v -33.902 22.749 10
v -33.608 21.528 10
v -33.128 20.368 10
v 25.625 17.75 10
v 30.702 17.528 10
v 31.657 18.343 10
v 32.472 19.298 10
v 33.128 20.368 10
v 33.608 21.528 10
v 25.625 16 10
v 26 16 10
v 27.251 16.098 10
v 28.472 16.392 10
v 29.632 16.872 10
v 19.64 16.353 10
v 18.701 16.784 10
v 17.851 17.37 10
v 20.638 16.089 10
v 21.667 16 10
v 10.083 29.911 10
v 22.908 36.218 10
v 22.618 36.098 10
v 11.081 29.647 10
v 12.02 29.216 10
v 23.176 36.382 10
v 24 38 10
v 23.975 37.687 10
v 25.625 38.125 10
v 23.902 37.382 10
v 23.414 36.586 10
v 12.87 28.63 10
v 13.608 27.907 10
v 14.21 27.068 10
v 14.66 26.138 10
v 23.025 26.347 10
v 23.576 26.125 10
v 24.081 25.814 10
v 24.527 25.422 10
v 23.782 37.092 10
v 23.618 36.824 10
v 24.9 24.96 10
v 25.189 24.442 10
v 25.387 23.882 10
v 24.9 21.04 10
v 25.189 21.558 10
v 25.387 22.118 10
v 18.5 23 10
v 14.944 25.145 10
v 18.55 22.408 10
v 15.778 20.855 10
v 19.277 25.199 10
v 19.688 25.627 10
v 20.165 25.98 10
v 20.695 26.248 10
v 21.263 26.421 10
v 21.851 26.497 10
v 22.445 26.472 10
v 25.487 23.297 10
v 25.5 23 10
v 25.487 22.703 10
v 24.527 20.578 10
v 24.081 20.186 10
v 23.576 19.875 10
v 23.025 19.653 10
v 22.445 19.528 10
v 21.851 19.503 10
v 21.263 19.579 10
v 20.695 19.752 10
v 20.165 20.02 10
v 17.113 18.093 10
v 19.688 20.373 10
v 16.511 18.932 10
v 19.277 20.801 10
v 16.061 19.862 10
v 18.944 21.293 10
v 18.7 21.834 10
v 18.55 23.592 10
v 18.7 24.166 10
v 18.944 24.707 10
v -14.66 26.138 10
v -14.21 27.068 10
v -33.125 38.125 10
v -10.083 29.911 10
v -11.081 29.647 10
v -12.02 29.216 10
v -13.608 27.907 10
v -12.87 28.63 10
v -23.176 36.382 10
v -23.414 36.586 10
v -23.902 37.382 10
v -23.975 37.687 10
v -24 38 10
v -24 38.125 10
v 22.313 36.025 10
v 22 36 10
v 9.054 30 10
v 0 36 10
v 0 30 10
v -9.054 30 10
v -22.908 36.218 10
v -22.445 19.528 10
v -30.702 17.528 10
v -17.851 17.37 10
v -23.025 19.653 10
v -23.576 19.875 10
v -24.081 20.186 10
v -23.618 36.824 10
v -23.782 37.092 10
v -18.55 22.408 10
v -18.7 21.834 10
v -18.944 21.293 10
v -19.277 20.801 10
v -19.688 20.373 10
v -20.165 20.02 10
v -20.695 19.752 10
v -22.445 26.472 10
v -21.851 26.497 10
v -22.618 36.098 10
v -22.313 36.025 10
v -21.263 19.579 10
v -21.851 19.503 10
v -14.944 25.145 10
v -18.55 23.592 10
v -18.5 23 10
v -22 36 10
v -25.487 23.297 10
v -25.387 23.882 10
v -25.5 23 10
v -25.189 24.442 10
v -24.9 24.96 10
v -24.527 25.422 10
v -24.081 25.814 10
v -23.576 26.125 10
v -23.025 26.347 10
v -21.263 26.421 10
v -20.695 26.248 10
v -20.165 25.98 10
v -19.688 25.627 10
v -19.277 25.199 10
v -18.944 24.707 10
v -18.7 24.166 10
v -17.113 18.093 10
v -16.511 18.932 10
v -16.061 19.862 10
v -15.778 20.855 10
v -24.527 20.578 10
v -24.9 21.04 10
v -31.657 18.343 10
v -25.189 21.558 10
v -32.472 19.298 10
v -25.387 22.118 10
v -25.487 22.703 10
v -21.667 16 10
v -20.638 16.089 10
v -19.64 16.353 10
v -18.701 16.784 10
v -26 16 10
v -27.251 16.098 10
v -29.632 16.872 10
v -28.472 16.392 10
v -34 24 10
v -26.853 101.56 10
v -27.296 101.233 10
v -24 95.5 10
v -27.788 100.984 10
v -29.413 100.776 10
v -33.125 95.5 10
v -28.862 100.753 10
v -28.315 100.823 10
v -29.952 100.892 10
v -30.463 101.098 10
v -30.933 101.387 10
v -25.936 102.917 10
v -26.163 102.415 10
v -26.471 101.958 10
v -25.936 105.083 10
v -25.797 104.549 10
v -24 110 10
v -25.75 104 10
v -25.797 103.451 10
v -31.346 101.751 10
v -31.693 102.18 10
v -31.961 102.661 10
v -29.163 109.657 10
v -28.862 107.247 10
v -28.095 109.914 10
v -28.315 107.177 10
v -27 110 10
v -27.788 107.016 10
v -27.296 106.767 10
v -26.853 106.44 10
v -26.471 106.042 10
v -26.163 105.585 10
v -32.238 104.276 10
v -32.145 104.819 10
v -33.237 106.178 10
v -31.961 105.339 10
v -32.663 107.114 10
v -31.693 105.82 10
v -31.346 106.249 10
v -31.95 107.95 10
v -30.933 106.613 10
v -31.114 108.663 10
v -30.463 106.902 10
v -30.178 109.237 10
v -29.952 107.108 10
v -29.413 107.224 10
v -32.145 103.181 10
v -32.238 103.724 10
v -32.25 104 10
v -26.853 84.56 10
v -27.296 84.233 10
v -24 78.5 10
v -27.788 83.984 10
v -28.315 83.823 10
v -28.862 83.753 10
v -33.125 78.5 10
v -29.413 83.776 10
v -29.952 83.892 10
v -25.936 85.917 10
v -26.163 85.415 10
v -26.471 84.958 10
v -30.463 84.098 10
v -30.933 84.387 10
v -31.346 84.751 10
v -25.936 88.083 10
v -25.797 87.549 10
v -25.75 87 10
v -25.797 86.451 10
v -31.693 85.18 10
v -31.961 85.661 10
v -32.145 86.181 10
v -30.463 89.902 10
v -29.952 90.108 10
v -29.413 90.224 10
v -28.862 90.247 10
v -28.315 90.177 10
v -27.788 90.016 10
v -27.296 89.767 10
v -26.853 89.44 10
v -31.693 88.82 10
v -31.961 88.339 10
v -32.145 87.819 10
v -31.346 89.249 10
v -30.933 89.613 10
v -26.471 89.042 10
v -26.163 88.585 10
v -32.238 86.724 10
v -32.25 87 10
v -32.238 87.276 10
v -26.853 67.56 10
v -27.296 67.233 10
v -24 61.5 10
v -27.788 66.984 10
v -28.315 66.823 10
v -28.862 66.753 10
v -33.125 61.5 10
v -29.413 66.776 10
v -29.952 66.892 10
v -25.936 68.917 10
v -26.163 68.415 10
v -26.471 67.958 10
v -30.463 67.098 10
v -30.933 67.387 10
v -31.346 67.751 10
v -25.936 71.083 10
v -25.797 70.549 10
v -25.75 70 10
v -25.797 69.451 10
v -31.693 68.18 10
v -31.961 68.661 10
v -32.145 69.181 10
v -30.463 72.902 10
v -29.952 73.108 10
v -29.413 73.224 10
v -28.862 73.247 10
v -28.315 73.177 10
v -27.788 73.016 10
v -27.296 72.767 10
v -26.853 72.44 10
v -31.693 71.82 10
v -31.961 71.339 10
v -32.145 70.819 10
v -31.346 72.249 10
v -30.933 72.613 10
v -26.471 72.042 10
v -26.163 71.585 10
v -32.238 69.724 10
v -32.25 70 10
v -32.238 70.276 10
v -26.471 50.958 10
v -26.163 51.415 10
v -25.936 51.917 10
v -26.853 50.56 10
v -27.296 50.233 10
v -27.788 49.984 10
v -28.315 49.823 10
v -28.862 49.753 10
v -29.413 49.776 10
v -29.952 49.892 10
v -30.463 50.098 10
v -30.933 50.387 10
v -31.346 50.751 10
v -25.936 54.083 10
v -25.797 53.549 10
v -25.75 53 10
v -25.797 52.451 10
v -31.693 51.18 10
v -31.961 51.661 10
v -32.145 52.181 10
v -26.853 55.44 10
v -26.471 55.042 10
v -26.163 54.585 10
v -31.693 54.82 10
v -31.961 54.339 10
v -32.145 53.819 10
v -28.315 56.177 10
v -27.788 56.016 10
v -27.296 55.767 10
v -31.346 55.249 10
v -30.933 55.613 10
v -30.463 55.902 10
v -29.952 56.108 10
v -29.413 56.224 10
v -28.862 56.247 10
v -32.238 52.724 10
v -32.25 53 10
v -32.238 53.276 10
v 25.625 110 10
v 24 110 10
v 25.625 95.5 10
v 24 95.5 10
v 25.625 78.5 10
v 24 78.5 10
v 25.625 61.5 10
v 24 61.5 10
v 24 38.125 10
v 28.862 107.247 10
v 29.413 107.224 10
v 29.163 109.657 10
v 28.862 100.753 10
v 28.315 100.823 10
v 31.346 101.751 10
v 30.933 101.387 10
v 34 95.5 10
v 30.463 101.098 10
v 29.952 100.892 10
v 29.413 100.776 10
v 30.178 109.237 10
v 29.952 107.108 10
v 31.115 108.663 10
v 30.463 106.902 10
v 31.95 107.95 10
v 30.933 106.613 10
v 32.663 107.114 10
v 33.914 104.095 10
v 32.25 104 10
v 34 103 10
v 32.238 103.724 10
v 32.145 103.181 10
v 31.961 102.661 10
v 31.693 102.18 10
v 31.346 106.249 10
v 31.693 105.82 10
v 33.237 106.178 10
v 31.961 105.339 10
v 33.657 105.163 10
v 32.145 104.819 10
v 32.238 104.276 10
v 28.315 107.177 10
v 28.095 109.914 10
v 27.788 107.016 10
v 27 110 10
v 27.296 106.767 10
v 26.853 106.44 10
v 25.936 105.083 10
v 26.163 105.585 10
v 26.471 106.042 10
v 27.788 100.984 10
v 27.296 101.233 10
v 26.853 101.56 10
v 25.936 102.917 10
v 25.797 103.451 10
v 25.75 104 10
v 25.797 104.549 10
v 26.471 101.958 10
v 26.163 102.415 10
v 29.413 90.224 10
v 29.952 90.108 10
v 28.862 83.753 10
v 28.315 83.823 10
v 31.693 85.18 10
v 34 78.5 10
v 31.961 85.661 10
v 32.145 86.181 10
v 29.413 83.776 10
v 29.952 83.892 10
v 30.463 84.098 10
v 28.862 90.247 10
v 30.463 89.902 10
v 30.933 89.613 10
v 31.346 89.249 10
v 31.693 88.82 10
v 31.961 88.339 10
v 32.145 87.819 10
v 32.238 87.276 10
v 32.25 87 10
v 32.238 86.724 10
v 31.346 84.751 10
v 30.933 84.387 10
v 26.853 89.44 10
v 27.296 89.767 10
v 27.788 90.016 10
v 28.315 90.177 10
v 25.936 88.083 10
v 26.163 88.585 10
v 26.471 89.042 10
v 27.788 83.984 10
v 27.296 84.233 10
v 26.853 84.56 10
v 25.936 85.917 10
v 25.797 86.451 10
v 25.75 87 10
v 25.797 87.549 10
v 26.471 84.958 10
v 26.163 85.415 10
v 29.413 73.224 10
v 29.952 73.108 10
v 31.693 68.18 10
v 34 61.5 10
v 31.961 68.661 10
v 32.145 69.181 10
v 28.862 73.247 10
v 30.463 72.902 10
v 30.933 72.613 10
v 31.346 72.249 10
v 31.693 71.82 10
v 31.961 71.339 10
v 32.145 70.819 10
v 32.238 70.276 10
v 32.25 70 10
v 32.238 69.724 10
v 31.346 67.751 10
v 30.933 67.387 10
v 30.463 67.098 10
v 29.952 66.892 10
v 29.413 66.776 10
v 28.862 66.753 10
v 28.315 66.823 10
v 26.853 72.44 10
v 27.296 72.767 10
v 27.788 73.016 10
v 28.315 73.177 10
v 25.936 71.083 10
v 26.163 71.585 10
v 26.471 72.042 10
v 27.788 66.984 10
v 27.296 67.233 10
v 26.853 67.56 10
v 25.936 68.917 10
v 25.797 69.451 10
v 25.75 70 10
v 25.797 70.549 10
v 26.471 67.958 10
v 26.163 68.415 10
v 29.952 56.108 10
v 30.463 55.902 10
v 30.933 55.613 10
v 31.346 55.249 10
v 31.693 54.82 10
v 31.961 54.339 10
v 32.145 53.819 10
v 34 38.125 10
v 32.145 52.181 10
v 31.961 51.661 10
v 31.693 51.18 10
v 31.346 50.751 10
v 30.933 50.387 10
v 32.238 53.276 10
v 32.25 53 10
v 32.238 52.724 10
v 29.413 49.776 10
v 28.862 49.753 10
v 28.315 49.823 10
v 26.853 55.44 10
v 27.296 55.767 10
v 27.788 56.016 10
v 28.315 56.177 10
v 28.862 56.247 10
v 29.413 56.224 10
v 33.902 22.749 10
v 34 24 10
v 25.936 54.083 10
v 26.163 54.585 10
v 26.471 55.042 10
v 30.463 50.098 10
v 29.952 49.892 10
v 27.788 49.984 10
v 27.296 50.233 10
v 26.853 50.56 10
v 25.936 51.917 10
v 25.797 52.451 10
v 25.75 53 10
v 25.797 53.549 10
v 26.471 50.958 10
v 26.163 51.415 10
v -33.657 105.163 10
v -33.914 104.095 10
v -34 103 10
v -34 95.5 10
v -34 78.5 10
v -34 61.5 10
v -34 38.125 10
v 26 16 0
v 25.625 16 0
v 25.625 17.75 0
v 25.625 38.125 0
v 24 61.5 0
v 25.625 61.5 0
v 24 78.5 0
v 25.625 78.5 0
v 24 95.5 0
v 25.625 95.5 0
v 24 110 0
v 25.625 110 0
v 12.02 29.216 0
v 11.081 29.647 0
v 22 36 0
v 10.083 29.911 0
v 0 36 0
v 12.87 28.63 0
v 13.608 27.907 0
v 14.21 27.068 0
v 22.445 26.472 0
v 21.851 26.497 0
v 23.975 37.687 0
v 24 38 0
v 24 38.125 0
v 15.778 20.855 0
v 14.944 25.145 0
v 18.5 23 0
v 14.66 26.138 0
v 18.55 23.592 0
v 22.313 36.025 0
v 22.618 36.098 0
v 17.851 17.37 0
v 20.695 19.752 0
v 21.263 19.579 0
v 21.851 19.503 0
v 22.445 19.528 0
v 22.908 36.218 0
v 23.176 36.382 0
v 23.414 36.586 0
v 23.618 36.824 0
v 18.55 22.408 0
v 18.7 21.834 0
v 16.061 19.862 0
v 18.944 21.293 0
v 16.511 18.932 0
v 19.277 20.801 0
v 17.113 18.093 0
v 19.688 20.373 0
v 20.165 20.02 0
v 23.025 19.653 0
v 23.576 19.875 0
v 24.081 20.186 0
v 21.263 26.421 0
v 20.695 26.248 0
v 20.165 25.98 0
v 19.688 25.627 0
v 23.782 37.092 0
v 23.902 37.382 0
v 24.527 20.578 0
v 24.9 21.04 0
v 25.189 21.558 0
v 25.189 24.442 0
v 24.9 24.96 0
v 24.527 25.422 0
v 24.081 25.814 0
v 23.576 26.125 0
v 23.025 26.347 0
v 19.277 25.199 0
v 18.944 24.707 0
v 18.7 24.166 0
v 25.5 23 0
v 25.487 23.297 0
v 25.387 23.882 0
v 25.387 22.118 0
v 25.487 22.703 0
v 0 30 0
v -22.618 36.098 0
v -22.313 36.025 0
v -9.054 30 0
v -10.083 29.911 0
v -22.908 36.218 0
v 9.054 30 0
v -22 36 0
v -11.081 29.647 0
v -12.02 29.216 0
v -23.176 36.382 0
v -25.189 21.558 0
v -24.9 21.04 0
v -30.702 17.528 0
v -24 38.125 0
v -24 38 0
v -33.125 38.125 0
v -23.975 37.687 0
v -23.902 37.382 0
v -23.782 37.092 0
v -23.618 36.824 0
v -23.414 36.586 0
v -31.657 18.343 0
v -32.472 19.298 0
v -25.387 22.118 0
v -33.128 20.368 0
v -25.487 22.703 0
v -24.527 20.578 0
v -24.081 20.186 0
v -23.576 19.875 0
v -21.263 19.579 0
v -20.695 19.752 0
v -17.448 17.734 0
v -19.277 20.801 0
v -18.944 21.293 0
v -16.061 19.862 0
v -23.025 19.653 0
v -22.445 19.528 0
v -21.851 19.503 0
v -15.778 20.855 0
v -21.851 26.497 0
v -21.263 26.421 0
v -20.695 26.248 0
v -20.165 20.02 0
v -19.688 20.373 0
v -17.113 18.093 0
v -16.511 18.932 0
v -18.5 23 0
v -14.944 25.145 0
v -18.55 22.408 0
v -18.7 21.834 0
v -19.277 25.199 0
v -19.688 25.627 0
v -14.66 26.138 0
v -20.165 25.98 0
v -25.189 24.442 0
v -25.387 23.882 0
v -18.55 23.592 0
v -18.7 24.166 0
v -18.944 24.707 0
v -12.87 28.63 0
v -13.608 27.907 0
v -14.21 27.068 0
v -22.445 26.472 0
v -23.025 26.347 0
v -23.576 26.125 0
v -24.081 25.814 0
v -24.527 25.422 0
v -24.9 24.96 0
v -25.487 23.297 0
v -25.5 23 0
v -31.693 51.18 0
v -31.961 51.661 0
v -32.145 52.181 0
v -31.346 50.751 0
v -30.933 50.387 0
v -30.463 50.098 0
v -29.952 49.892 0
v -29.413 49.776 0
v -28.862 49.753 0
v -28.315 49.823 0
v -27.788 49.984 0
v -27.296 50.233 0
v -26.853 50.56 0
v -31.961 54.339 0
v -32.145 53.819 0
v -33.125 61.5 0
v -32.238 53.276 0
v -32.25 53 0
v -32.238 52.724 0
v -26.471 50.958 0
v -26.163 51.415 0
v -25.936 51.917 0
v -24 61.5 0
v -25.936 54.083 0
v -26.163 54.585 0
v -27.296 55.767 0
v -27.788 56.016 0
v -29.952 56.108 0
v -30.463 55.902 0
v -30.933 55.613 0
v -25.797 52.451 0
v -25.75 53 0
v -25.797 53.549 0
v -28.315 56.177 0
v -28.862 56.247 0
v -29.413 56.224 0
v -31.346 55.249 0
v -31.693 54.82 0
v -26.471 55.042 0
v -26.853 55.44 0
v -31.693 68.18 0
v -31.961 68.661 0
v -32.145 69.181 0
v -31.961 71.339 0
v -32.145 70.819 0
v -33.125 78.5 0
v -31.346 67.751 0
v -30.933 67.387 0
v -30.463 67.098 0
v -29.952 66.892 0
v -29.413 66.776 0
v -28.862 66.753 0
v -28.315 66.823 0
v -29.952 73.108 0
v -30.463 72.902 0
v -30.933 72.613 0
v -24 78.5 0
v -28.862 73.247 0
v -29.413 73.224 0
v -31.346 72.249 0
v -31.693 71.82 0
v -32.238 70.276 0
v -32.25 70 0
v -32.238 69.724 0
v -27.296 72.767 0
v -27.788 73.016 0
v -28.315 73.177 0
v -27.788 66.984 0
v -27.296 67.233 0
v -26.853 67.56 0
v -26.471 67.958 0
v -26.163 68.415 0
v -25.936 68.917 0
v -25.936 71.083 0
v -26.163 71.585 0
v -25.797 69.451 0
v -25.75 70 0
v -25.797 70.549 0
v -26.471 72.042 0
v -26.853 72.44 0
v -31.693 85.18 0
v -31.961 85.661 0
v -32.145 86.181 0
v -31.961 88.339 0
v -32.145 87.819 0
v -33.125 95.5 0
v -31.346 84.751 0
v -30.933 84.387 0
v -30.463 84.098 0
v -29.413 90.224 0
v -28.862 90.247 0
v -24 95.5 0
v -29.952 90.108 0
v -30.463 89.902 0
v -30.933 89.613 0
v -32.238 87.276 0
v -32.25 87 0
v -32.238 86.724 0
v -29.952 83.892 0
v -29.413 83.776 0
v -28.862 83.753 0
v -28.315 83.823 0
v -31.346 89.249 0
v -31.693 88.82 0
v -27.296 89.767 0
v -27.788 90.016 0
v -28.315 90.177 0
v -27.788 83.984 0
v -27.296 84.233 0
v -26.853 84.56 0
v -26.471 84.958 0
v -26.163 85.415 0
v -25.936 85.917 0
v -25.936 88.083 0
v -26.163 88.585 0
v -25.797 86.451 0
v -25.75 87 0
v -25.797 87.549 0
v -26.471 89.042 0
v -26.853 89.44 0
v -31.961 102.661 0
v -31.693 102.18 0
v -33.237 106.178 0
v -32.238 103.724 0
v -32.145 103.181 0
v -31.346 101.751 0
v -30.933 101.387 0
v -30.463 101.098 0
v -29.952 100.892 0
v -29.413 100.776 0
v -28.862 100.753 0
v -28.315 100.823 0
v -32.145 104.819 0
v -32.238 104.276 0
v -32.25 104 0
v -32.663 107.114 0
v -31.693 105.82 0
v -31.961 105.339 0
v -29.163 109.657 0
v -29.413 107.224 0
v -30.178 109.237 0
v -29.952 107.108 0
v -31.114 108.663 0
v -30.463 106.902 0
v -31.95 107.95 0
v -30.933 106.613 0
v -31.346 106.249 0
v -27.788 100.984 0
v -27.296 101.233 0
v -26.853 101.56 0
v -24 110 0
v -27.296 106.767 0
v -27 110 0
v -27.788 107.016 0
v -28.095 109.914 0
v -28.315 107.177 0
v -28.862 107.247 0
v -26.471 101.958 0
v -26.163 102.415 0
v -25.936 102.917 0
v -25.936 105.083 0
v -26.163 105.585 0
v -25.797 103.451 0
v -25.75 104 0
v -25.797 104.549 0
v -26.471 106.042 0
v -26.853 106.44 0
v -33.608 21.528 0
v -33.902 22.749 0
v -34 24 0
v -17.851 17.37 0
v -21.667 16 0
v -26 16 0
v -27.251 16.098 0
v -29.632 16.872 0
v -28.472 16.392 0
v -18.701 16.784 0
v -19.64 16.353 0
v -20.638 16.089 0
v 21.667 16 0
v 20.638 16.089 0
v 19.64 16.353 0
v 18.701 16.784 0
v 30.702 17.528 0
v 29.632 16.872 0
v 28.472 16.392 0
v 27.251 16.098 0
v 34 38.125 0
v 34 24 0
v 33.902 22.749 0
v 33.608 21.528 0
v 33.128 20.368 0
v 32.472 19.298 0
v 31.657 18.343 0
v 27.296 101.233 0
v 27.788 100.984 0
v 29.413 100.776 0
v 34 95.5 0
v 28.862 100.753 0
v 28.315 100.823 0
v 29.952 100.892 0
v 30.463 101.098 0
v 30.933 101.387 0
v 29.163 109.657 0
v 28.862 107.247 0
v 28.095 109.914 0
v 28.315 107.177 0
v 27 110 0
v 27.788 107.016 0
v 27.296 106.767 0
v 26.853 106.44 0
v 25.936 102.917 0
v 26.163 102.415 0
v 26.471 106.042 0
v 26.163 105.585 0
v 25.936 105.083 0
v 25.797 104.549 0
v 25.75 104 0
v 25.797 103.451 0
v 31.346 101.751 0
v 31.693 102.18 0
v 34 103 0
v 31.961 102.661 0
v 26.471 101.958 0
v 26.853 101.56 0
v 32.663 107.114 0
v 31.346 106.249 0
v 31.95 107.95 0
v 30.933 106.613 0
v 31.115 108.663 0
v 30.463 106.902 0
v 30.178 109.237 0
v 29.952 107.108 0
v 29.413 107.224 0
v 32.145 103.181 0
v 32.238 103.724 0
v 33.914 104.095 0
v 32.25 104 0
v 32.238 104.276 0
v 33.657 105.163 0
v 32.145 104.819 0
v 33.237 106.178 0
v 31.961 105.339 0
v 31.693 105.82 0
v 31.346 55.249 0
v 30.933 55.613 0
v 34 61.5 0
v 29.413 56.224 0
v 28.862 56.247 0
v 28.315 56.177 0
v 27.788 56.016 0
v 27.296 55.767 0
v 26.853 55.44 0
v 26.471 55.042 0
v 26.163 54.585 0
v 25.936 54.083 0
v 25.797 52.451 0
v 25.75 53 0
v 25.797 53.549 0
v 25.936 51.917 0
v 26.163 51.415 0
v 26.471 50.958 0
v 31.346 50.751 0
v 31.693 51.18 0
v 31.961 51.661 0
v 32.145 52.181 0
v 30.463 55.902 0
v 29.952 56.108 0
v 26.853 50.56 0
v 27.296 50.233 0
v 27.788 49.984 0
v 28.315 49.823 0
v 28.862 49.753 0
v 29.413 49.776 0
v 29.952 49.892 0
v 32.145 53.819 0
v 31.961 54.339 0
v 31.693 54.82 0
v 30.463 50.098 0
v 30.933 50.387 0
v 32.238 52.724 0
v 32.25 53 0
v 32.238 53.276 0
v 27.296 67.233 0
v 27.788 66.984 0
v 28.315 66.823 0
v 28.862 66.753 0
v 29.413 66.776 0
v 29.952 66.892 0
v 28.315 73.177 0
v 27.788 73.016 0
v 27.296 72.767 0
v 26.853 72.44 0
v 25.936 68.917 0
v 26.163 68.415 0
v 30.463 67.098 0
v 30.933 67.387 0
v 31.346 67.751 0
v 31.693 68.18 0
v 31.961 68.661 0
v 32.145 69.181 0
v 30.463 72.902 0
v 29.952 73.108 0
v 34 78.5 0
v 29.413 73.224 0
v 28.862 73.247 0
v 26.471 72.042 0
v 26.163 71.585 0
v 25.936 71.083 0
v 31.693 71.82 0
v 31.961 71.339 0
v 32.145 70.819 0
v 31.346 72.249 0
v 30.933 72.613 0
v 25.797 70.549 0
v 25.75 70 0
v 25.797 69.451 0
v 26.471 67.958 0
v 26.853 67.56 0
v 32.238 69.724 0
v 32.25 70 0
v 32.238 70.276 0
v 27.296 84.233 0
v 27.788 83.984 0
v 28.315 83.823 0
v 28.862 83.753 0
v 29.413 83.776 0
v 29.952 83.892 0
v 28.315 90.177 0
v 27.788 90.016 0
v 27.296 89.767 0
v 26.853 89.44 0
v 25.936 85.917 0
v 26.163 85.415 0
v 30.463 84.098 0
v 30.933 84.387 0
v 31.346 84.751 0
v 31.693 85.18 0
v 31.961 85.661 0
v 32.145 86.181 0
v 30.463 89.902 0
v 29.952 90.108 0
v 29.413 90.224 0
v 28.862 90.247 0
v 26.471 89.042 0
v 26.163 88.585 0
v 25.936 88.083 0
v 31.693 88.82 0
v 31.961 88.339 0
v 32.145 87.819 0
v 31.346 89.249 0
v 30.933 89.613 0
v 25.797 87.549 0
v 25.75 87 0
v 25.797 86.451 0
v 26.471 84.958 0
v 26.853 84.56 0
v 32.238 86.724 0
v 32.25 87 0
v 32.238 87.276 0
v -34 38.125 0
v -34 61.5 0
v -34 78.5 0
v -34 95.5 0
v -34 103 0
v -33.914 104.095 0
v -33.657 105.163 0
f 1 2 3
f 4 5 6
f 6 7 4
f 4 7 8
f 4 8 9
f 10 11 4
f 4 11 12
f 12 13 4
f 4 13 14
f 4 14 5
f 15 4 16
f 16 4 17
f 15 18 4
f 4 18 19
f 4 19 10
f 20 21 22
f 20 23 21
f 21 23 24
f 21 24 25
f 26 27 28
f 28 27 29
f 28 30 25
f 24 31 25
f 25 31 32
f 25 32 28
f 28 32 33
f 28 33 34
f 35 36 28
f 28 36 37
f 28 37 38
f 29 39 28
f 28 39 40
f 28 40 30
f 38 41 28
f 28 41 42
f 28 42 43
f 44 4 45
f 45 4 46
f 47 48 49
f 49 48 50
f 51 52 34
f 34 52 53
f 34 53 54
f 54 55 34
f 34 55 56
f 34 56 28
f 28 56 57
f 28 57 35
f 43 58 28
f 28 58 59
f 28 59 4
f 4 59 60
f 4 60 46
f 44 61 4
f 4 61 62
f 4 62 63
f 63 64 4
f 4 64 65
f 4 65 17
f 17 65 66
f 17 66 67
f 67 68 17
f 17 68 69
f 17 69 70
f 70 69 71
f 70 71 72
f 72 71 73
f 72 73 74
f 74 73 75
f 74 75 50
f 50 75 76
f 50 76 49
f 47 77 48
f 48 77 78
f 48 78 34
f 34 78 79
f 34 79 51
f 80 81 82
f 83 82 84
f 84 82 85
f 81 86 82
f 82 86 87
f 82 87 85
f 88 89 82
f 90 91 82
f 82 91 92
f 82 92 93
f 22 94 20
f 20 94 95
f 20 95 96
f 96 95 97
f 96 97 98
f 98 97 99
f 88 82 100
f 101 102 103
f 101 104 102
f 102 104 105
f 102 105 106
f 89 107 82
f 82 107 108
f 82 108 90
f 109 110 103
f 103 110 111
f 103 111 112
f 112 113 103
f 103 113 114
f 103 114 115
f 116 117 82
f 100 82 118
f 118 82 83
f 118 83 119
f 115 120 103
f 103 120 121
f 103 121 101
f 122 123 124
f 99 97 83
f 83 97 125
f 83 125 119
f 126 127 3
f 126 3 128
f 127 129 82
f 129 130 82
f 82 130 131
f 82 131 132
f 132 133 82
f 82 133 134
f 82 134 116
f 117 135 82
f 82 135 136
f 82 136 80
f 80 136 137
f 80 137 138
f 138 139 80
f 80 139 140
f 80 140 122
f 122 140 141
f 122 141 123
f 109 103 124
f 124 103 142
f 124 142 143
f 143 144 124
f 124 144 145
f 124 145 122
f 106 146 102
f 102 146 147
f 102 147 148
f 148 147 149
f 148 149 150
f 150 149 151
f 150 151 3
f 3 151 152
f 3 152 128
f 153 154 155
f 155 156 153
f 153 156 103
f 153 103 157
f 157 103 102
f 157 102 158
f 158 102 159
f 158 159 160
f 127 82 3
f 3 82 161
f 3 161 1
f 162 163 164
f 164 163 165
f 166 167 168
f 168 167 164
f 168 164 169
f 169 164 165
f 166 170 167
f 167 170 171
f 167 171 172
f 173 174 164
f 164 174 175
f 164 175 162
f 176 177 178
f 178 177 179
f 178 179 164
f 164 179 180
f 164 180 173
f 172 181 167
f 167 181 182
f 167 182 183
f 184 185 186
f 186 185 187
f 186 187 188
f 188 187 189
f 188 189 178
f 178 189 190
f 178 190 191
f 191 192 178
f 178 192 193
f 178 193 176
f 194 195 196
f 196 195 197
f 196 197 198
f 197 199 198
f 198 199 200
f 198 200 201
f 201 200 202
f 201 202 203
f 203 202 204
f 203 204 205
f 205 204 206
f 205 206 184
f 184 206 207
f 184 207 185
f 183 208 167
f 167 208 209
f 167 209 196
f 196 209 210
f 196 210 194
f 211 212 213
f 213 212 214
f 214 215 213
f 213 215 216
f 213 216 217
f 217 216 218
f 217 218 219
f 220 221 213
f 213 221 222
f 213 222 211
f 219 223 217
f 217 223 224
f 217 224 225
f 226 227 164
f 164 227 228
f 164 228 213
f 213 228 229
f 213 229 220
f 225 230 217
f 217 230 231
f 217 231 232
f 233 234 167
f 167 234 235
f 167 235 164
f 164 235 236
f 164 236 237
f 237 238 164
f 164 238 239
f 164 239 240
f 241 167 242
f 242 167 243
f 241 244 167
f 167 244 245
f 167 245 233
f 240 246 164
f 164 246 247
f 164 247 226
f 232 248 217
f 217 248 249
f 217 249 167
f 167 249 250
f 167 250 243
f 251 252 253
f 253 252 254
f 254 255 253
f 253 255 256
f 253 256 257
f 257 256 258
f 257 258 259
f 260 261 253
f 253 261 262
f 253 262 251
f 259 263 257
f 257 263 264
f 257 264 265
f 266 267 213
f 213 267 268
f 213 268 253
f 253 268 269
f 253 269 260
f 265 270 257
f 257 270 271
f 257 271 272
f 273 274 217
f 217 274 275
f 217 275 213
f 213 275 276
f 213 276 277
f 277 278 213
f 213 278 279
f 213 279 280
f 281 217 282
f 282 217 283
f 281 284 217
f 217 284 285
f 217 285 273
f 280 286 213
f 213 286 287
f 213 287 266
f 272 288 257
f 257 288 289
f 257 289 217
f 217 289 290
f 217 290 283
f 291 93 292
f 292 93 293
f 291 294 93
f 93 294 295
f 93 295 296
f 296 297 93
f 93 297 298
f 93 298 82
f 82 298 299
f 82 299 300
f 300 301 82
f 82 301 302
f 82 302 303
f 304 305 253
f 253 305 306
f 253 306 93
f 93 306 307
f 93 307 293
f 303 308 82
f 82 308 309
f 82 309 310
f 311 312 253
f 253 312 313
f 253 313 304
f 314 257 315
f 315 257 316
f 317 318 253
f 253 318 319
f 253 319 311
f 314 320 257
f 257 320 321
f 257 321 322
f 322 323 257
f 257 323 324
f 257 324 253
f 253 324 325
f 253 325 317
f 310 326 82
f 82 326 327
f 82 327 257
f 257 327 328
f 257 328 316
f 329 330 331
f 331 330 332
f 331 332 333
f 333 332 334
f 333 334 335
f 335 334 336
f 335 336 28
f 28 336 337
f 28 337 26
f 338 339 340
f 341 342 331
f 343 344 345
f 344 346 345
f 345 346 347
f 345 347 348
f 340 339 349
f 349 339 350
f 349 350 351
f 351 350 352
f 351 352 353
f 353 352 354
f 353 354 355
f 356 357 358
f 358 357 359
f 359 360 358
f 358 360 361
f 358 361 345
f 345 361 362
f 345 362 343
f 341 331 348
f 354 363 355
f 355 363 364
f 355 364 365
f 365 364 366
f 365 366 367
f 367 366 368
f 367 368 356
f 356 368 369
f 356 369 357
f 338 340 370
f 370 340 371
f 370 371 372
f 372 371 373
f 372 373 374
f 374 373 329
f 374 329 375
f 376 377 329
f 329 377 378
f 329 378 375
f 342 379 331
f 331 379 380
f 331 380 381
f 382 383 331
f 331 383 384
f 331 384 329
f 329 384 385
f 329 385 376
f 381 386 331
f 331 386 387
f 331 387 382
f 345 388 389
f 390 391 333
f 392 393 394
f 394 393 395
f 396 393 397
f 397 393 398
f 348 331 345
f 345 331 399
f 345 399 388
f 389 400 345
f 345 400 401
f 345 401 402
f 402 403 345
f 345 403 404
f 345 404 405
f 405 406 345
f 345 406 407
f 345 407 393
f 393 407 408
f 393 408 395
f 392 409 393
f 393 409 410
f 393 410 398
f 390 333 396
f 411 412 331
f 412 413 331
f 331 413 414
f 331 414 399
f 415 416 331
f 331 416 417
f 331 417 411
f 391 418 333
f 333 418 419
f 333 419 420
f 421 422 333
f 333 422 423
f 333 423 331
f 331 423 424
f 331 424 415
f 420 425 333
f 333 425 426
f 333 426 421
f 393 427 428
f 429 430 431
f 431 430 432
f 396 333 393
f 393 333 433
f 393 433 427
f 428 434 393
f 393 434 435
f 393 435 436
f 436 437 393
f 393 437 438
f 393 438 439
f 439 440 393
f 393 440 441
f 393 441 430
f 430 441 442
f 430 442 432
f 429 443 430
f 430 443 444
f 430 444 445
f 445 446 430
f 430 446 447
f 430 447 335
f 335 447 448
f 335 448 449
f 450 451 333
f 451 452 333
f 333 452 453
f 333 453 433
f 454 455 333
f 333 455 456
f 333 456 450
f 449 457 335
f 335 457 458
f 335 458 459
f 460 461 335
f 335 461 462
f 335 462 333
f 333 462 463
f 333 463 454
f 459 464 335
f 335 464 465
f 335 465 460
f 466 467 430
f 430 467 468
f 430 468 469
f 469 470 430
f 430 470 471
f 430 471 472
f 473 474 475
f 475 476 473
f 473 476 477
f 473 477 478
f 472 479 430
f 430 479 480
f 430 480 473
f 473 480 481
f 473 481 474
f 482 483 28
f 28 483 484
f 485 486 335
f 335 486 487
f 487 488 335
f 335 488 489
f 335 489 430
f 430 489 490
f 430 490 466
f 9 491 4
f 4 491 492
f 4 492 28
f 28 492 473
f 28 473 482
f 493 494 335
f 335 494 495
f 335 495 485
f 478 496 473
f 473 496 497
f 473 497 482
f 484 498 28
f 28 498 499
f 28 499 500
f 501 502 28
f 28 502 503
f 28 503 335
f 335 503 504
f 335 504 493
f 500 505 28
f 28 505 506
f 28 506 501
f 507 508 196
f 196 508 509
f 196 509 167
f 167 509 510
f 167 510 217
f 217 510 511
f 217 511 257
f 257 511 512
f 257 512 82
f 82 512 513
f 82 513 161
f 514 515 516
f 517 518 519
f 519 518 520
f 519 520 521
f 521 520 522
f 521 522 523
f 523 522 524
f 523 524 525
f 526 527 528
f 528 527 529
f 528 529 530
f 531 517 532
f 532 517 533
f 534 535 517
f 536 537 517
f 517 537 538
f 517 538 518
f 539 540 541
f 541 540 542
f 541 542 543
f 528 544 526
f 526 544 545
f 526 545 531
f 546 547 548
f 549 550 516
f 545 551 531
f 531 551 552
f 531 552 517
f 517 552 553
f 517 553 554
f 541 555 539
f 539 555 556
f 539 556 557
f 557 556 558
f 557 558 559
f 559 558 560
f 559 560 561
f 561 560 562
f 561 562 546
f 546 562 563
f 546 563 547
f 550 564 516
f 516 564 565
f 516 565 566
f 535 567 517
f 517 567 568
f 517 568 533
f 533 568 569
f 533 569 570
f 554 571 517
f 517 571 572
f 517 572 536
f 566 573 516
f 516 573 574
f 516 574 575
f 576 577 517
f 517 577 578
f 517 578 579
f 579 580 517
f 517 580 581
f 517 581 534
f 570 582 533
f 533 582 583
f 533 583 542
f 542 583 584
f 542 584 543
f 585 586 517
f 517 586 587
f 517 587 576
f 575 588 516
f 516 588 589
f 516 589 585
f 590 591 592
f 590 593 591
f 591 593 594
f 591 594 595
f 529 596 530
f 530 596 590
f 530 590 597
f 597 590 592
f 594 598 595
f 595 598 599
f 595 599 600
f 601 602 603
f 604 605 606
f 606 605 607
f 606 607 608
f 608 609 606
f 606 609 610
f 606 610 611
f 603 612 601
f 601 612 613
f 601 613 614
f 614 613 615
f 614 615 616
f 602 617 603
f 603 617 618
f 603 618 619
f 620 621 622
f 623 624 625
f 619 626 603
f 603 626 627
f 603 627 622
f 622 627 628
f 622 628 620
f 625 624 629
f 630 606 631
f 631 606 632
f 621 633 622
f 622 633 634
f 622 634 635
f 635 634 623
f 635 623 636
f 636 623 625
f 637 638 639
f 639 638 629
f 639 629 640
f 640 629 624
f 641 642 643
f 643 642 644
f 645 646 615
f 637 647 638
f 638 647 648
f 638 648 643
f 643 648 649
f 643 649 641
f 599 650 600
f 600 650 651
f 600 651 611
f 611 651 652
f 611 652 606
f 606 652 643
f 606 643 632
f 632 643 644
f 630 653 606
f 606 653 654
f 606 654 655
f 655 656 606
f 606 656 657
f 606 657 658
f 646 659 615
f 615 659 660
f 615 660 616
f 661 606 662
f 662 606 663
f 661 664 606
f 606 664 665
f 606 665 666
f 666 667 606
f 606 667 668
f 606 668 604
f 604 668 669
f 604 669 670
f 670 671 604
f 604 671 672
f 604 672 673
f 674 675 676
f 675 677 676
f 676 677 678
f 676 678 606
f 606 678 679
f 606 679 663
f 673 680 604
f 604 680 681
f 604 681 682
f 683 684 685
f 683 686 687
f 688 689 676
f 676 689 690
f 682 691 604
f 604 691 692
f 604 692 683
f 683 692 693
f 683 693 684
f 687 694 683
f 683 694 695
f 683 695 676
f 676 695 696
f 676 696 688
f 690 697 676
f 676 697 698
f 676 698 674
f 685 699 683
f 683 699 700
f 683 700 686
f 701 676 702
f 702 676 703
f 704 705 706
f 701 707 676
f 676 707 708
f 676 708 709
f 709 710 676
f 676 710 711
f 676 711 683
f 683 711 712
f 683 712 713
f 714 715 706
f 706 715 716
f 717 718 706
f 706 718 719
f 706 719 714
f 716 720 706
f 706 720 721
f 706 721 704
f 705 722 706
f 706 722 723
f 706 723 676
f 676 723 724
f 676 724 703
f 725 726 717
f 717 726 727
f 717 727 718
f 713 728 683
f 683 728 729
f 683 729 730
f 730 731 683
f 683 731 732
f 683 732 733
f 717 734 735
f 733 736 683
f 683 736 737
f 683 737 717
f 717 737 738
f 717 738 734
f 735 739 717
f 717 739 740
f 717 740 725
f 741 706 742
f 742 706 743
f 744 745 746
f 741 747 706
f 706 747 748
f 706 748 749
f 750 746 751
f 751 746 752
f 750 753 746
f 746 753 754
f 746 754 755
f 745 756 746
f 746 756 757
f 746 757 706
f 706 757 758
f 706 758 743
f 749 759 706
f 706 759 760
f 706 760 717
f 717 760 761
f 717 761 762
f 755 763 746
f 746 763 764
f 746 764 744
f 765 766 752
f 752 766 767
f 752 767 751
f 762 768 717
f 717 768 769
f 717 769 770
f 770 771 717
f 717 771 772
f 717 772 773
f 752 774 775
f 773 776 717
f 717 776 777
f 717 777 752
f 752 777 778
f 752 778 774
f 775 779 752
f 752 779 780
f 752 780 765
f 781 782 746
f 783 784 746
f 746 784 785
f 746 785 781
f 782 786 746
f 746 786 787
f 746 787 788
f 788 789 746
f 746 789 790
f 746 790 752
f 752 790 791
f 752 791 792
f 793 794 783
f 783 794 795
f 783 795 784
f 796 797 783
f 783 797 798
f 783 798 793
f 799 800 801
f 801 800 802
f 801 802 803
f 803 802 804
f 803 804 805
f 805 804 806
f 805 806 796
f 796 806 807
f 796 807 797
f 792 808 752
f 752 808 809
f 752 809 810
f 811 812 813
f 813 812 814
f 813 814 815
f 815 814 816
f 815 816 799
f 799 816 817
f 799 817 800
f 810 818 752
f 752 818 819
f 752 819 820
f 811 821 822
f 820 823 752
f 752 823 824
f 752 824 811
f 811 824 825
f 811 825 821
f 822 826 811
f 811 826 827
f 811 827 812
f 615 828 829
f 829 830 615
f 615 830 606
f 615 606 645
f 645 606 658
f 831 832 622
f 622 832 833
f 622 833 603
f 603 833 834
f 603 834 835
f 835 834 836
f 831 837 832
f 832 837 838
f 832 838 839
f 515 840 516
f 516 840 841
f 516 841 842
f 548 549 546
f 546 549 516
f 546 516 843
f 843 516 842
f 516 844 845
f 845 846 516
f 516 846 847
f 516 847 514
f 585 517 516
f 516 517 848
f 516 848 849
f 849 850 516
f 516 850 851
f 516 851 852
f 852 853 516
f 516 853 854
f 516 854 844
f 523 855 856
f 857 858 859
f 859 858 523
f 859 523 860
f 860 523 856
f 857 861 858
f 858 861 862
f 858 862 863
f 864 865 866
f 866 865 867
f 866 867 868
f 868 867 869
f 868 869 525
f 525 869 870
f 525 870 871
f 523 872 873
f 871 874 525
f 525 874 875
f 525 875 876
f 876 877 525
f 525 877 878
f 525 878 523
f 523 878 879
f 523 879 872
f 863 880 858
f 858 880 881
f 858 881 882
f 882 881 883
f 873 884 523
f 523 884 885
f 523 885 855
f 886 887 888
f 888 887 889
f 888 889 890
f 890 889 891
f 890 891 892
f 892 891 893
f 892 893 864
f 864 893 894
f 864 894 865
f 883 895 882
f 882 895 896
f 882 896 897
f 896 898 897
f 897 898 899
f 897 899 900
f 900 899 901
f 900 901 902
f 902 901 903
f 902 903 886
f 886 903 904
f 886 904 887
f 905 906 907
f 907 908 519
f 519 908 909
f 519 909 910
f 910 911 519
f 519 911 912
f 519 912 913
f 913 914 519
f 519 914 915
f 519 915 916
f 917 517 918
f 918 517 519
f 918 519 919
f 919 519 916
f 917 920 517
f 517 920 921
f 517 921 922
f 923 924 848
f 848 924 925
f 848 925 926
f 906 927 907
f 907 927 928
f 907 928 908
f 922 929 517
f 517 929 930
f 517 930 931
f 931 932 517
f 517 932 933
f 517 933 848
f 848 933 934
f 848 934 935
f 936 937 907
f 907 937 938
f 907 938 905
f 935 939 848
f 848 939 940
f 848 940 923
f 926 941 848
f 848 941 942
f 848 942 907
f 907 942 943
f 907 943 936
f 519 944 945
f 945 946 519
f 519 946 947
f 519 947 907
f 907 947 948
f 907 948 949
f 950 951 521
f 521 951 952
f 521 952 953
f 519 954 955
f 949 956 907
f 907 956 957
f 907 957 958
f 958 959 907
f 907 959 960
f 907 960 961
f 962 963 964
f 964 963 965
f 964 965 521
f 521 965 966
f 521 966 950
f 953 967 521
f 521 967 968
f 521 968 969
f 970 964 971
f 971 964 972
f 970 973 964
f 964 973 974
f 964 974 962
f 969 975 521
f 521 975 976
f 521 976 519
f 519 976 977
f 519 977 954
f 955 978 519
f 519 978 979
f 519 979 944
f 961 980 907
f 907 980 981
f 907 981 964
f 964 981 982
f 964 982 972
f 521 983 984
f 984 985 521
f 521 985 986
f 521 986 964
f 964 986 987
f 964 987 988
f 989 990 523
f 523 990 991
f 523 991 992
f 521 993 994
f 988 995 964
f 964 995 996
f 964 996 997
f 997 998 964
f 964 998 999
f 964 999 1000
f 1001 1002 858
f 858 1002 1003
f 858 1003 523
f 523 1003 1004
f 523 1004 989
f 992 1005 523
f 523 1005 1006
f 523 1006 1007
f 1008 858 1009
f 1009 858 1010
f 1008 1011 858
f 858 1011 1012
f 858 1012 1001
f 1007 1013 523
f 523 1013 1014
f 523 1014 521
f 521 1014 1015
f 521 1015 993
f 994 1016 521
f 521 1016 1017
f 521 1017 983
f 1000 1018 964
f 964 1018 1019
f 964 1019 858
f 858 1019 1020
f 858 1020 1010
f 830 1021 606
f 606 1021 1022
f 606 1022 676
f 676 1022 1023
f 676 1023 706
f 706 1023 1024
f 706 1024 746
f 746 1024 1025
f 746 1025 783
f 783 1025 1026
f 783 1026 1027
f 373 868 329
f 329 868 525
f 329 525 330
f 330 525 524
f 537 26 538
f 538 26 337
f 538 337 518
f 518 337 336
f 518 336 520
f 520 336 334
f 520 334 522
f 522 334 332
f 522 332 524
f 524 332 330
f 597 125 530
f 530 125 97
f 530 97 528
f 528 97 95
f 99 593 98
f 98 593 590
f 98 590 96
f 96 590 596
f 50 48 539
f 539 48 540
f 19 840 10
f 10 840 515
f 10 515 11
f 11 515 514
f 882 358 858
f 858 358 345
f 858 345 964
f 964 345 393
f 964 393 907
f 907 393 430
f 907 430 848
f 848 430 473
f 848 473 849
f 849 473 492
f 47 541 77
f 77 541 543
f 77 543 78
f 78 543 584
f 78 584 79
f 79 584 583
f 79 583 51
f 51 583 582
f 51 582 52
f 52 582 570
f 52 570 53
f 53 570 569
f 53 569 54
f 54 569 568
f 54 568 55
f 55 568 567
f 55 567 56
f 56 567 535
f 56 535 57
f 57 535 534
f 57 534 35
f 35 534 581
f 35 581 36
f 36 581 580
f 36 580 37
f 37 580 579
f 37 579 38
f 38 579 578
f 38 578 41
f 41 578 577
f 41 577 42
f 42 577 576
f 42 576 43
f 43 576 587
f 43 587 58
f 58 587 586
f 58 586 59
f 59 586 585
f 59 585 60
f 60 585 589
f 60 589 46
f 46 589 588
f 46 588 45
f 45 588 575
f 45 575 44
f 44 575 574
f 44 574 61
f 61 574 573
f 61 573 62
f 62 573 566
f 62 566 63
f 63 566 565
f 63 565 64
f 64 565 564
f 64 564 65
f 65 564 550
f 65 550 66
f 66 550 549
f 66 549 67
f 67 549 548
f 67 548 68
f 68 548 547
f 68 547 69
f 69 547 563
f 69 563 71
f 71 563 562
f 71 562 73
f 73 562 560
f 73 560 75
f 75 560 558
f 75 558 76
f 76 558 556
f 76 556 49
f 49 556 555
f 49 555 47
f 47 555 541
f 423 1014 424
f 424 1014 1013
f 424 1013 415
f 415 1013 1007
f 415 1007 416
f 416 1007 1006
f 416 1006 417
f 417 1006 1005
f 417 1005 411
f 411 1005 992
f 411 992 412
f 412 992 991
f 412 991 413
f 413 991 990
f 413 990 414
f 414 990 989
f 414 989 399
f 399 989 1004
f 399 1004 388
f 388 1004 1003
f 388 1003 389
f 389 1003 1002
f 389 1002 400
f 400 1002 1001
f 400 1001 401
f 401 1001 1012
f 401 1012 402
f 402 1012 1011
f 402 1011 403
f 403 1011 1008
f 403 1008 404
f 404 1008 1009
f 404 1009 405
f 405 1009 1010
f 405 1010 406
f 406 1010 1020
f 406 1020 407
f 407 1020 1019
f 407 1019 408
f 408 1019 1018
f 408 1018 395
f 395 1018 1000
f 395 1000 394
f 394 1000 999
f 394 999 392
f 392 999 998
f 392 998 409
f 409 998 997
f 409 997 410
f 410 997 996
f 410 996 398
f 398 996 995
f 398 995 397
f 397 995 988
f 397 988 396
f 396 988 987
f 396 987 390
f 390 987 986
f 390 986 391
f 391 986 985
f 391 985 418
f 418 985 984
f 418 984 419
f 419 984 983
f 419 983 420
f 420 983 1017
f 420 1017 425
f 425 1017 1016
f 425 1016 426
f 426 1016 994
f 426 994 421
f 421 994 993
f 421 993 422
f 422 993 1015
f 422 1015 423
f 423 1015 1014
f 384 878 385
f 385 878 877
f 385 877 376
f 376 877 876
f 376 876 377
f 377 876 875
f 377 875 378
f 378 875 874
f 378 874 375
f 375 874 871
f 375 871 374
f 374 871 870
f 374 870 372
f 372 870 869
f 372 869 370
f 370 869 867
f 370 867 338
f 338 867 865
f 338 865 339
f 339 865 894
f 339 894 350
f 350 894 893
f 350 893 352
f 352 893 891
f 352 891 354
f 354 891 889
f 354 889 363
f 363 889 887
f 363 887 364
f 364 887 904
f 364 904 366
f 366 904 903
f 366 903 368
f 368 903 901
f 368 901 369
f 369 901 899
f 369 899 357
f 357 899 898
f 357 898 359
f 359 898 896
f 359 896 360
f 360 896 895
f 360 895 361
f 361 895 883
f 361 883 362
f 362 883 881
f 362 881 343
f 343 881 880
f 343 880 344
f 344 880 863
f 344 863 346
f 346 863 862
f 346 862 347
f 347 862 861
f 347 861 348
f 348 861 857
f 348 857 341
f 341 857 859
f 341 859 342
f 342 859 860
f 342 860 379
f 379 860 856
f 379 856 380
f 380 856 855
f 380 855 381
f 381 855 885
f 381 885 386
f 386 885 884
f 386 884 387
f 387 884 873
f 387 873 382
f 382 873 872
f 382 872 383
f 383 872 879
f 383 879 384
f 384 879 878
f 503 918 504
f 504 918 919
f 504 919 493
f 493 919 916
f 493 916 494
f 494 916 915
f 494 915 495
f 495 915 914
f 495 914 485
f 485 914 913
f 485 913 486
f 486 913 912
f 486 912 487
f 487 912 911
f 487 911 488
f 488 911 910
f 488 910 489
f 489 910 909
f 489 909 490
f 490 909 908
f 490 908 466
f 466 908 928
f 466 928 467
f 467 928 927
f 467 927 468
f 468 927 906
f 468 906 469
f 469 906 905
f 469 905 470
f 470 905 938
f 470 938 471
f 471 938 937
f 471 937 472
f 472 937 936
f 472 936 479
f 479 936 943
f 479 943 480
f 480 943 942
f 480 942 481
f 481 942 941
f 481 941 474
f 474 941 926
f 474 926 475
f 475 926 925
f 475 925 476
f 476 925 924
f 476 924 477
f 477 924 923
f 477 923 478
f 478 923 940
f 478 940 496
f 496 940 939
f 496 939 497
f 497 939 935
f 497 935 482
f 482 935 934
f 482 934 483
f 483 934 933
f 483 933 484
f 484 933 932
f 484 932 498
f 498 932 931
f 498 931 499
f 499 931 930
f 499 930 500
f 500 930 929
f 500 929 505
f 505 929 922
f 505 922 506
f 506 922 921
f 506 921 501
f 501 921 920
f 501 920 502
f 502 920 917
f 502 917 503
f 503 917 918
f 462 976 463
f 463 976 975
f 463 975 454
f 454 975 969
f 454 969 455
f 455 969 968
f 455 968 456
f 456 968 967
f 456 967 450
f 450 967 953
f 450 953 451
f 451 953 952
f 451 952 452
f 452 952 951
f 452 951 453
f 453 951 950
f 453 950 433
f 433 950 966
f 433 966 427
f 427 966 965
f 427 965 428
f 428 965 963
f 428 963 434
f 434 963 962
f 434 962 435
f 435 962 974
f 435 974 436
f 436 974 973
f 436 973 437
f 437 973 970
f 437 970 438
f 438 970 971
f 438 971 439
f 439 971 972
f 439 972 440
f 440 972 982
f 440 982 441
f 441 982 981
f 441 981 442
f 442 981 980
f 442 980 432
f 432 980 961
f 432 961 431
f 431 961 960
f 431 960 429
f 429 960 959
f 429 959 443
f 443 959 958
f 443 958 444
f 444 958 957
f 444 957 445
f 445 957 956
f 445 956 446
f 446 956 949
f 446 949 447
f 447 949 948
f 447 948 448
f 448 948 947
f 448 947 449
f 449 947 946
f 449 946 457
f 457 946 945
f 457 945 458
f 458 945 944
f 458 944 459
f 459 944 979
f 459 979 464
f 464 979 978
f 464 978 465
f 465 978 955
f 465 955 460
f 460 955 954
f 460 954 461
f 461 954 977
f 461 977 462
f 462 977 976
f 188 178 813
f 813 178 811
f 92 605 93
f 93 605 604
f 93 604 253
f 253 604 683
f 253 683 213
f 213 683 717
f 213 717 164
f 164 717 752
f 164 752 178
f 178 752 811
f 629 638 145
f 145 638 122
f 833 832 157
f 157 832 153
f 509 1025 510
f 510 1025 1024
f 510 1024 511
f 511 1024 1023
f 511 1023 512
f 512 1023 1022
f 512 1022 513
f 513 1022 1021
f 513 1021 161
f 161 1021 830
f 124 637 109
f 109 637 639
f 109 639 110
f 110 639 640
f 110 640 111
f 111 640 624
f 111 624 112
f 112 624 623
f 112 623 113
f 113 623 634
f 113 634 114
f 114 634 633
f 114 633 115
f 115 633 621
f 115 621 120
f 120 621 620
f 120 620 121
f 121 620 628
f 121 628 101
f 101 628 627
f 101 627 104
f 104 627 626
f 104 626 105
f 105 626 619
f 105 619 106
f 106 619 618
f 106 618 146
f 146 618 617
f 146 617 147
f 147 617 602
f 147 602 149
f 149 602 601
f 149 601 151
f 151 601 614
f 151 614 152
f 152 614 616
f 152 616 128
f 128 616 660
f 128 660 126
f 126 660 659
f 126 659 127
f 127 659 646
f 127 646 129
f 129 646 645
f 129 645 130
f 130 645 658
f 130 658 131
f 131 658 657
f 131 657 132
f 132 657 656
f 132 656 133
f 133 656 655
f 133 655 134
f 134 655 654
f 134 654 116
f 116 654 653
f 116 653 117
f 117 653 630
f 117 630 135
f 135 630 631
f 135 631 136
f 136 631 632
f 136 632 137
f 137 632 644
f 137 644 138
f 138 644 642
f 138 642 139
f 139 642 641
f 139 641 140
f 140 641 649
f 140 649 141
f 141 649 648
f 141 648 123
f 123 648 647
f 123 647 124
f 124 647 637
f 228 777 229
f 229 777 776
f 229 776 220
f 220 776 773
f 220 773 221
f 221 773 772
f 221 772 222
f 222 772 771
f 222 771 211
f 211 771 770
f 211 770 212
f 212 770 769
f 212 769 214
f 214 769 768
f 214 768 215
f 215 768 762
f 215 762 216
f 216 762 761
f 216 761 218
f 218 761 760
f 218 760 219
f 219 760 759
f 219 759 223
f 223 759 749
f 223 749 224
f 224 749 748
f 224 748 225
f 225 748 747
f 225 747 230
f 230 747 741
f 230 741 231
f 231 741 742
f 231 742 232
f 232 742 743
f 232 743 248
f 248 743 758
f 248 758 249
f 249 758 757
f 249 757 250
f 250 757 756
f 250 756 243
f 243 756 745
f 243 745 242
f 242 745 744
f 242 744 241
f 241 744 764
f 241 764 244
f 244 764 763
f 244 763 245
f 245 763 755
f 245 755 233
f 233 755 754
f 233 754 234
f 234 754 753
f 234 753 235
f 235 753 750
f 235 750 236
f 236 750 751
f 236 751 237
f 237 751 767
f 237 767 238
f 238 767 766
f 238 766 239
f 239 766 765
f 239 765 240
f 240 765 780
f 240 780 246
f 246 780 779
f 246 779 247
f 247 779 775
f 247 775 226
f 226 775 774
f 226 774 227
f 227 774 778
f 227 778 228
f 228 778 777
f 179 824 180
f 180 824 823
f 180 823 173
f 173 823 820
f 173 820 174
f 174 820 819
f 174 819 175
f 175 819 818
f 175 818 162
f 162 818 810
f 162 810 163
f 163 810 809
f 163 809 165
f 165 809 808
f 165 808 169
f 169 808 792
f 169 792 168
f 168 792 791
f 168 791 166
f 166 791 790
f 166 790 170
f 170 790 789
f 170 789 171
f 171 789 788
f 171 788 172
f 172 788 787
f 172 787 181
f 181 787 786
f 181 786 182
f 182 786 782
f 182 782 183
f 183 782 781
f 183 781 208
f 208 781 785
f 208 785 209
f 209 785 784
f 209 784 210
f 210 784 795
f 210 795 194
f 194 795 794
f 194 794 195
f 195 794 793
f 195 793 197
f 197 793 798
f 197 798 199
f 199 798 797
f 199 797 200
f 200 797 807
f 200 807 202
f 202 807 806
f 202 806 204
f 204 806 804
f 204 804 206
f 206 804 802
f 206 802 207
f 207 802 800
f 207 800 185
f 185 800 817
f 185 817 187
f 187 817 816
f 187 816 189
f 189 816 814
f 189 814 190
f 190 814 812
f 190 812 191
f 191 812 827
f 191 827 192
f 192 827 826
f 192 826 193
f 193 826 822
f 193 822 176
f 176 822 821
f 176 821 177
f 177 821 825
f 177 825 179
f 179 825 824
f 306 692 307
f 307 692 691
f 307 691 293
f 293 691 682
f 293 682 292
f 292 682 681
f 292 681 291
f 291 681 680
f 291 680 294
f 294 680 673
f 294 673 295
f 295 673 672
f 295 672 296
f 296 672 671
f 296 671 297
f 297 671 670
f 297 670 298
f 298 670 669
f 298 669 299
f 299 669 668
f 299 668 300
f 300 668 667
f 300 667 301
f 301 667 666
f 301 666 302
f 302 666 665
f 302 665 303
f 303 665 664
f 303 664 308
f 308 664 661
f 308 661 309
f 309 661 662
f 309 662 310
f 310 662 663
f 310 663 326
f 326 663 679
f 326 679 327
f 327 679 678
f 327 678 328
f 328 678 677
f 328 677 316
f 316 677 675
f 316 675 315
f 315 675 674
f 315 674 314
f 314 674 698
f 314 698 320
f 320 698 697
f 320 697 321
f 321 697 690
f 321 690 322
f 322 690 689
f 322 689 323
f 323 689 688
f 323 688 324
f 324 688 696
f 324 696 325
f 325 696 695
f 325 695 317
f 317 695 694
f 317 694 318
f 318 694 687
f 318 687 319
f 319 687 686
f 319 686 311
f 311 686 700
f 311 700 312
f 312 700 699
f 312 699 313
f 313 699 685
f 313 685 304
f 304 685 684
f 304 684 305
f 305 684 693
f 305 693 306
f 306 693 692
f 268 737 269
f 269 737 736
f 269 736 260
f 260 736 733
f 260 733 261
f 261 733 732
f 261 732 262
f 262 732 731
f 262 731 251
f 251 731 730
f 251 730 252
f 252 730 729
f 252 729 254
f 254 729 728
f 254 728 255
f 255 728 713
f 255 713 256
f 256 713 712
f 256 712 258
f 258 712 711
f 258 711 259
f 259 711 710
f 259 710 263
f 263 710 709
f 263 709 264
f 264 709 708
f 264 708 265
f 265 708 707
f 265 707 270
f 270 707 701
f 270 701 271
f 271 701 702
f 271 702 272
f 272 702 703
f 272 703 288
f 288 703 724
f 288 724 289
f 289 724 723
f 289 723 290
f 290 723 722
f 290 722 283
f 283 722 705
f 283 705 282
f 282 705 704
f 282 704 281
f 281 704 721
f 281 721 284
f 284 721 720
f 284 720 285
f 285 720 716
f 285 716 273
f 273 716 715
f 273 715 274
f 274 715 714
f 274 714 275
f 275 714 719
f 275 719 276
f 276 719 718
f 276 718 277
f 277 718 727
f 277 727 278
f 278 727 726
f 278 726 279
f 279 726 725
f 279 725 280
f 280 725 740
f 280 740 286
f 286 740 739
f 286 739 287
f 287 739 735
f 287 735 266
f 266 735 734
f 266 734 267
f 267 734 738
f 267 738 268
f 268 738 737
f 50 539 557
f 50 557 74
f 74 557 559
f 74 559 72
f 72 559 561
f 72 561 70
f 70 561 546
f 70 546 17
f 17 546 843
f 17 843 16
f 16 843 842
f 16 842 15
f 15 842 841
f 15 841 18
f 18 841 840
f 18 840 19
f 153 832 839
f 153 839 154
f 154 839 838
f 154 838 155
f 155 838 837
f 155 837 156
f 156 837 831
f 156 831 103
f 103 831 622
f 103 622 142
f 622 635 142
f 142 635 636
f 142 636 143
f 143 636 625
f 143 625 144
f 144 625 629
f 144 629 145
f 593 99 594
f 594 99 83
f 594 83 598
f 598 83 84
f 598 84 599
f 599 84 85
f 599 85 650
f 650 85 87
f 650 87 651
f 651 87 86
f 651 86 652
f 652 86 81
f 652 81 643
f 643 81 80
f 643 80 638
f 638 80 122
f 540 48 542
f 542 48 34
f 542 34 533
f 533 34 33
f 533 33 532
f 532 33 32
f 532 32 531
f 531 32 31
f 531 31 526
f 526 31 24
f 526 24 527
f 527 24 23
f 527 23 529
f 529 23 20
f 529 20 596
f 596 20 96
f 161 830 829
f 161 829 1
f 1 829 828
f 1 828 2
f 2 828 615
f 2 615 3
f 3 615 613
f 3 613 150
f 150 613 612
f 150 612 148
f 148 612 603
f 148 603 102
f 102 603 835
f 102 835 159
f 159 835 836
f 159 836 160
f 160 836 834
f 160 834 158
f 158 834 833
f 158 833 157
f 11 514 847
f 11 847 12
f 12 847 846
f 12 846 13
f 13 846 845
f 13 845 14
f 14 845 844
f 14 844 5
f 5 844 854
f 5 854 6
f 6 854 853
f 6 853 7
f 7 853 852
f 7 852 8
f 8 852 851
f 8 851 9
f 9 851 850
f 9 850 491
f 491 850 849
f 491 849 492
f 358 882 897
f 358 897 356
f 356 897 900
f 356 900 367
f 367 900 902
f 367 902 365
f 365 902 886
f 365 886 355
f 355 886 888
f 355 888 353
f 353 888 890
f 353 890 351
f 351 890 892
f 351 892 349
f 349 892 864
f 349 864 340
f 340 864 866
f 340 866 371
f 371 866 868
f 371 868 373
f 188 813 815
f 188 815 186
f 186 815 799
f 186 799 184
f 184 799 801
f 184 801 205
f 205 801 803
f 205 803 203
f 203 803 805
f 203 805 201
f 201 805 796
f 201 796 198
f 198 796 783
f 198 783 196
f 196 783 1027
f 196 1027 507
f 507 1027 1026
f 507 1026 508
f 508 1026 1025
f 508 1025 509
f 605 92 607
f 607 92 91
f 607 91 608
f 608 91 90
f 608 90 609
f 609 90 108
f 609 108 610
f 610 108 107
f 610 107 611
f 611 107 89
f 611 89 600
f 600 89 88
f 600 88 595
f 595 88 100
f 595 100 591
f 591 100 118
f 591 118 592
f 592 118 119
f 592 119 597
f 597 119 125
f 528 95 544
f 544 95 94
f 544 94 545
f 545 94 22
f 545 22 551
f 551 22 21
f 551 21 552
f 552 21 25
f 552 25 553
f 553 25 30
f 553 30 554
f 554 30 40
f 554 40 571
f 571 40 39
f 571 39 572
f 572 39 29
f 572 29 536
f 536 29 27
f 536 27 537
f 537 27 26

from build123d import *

# Parameters (mm, degrees)
ESQUISSE1_R        = 3.25
ESQUISSE1_R_2      = 3.5
BOSS_EXTRU_1_DEPTH = 10
CONG_1_R           = 6
CONG_2_R           = 8
CONG_3_R           = 7
CONG_4_R           = 2


with BuildPart() as part:
    # Esquisse1 → Boss.-Extru.1 (new body)
    with BuildSketch(Plane.XY):
        Polygon((24, 110), (24, 36), (0, 36), (0, 30), (14, 30), (16.721324328, 16), (34, 16), (34, 110), align=None)
        with Locations((29, 104)):
            Circle(ESQUISSE1_R, mode=Mode.SUBTRACT)
        with Locations((22, 23)):
            Circle(ESQUISSE1_R_2, mode=Mode.SUBTRACT)
        with Locations((29, 87)):
            Circle(ESQUISSE1_R, mode=Mode.SUBTRACT)
        with Locations((29, 70)):
            Circle(ESQUISSE1_R, mode=Mode.SUBTRACT)
        with Locations((29, 53)):
            Circle(ESQUISSE1_R, mode=Mode.SUBTRACT)
    boss_extru_1 = extrude(amount=BOSS_EXTRU_1_DEPTH)

    # Symétrie2: Boss.-Extru.1 across plane
    add(boss_extru_1.mirror(Plane(origin=(0, 36, 10), x_dir=(0, 0, 1), z_dir=(1, 0, 0))))

    # Congé1
    cong_1_edges = [part.edges().sort_by_distance(p)[0] for p in [
        (16.721324328, 16, 5),
        (14, 30, 5),
        (-14, 30, 5),
        (-16.721324328, 16, 5),
    ]]
    fillet(cong_1_edges, radius=CONG_1_R)

    # Congé2
    cong_2_edges = [part.edges().sort_by_distance(p)[0] for p in [
        (34, 16, 5),
        (-34, 16, 5),
    ]]
    fillet(cong_2_edges, radius=CONG_2_R)

    # Congé3
    cong_3_edges = [part.edges().sort_by_distance(p)[0] for p in [
        (34, 110, 5),
        (-34, 110, 5),
    ]]
    fillet(cong_3_edges, radius=CONG_3_R)

    # Congé4
    cong_4_edges = [part.edges().sort_by_distance(p)[0] for p in [
        (24, 36, 5),
        (-24, 36, 5),
    ]]
    fillet(cong_4_edges, radius=CONG_4_R)


solid = part.part
